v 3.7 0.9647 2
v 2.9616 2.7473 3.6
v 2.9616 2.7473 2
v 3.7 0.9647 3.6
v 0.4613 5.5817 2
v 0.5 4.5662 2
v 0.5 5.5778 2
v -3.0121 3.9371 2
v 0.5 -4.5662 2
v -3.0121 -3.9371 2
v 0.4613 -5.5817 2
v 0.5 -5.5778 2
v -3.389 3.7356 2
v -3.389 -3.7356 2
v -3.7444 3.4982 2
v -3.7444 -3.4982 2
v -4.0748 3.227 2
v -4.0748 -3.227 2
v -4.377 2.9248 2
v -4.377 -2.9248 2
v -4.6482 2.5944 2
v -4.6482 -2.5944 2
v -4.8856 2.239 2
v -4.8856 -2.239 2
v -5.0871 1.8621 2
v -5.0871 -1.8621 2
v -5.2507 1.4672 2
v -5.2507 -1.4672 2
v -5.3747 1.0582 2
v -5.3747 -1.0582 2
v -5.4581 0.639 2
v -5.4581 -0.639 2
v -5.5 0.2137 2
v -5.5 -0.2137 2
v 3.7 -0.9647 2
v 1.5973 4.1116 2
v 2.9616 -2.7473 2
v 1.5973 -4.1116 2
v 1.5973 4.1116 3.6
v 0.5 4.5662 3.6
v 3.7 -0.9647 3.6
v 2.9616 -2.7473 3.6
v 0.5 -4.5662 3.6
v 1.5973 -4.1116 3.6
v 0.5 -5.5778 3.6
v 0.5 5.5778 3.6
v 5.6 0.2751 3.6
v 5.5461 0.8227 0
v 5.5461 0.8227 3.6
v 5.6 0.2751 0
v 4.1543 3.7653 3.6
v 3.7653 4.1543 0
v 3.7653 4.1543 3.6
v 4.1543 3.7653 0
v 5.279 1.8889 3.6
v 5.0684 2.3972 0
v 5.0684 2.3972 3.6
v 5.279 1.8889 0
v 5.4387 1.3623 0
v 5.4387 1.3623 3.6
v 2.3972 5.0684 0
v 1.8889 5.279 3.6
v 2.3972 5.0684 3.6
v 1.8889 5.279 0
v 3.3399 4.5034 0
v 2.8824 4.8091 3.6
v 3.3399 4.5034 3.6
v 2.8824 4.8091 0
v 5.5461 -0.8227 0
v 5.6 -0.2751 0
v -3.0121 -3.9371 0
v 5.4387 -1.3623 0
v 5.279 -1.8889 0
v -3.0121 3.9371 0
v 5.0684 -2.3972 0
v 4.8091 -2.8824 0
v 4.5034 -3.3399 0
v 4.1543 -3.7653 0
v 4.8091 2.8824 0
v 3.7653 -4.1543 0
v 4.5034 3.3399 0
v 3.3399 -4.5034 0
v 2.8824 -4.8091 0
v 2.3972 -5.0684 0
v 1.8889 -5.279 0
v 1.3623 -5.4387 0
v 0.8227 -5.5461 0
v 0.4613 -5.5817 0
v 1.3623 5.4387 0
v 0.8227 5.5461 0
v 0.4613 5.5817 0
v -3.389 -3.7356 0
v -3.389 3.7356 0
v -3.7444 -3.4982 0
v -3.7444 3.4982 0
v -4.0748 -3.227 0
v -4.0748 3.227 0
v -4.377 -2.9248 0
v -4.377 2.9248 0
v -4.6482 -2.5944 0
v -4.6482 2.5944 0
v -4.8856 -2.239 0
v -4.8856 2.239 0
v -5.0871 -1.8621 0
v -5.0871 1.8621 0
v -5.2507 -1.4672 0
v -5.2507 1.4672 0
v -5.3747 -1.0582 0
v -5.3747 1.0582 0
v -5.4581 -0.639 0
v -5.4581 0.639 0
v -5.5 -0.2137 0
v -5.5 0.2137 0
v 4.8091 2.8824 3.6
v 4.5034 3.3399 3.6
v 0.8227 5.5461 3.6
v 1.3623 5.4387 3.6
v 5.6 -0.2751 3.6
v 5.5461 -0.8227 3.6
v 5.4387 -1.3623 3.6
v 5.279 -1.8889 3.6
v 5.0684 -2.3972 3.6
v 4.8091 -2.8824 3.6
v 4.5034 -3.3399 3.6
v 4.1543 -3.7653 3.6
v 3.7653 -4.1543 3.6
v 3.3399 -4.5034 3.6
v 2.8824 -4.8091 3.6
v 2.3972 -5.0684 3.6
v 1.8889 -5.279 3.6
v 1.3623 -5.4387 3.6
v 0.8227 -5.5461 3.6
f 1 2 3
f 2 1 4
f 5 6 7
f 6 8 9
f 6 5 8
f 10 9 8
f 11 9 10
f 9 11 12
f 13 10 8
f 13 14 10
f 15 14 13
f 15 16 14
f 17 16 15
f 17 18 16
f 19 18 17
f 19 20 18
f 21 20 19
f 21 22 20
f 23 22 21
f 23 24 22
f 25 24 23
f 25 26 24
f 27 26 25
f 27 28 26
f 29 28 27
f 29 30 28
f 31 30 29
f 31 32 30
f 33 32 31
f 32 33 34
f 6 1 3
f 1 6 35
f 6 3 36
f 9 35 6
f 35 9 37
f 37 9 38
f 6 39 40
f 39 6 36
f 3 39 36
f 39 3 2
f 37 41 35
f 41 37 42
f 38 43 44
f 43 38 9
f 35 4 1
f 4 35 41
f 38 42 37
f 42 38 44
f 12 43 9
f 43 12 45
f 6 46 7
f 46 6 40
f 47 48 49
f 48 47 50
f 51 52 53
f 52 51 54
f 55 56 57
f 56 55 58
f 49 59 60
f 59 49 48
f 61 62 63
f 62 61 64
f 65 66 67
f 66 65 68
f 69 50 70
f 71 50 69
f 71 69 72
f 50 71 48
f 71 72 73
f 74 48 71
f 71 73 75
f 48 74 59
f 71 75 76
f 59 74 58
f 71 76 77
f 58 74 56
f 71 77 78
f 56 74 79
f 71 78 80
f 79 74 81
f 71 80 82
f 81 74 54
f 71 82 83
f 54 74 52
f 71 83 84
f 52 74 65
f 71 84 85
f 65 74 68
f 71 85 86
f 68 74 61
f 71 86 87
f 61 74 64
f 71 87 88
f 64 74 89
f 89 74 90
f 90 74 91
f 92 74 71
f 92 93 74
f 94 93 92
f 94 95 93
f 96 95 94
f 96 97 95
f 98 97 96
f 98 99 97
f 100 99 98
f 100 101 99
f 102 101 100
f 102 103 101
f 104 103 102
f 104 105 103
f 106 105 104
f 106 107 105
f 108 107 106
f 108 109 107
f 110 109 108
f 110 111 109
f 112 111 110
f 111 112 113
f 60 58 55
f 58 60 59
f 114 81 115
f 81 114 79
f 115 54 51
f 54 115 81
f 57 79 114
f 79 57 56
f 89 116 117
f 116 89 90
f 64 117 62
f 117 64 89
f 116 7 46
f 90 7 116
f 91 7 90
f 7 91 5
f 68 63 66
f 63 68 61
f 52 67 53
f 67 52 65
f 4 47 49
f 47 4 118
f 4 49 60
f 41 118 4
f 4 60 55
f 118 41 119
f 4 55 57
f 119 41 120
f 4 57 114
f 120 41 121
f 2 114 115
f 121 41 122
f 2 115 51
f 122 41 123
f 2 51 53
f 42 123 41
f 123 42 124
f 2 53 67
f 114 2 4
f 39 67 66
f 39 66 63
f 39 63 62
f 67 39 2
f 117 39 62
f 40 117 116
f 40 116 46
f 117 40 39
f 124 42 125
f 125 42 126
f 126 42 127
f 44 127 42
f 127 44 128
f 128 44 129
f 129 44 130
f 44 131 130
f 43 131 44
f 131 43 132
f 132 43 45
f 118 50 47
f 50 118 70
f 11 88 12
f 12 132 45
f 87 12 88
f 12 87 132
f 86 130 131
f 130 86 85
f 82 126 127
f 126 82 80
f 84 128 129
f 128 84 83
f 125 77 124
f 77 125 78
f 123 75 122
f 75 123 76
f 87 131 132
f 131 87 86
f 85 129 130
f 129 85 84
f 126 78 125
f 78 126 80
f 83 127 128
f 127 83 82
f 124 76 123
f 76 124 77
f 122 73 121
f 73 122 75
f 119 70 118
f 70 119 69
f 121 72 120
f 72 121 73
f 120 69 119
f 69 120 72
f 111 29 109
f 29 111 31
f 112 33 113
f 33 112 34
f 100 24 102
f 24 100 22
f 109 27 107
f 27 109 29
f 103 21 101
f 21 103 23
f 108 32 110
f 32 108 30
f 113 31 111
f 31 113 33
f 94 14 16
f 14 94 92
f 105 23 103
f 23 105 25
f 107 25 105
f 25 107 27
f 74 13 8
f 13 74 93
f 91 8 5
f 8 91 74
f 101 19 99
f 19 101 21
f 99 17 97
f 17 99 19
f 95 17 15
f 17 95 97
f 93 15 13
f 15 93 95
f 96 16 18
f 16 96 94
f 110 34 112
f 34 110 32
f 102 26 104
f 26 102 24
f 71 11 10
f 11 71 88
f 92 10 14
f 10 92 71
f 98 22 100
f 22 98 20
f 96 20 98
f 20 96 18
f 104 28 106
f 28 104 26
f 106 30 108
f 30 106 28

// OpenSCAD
// file: ../../lib/util.scad
left   = -1;
right  = 1;
front  = -1;
rear   = 1;
top    = 1;
bottom = -1;

x = 0;
y = 1;
z = 2;

width  = x;
depth  = y;
height = z;

inch = 25.4;

function accurate_diam(diam,sides) = 1 / cos(180/sides) / 2 * diam;

module hole(diam,len,sides=8) {
  rotate([0,0,180/sides]) {
    cylinder(r=accurate_diam(diam,sides),h=len,center=true,$fn=sides);
  }
}

module accurate_circle(diam,sides=8) {
  rotate([0,0,180/sides]) {
    circle(r=accurate_diam(diam,sides),$fn=sides);
  }
}

module debug_axes() {
  color("red") {
    translate([50,0,0]) cube([100,.2,.2],center=true);
    translate([0,50,0]) cube([.2,100,.2],center=true);
    translate([0,0,50]) cube([.2,.2,100],center=true);
  }
}

module rounded_square(width,height,diam,resolution=16) {
  hull() {
    for(x=[left,right]) {
      for(y=[front,rear]) {
        translate([x*(width/2-diam/2),y*(height/2-diam/2),0]) {
          accurate_circle(diam,resolution);
        }
      }
    }
  }
}
// main file
include <../../lib/util.scad>;

LR44_diam   = 11.6;
LR44_height = 5.4;
LR932_diam   = 9.3;
LR932_height = 3.2;

z_margin  = 0.2;
xy_margin = 0.4;

rim_height = LR44_height - LR932_height - z_margin;

body_diam   = LR44_diam    - xy_margin;
body_height = rim_height   + LR932_height/2;
void_diam   = LR932_diam   + xy_margin;
void_height = LR932_height + z_margin;

offset_x = (LR932_diam - LR44_diam)/2;

resolution = 64;

module battery_adapter() {
  difference() {
    intersection() {
      translate([0,0,body_height/2]) {
        hole(body_diam,body_height,resolution);
      }

      hull() {
        translate([offset_x,0,body_height/2]) {
          hole(void_diam-1,body_height*2,resolution);
        }
        translate([body_diam/2,0,body_height]) {
          cube([body_diam-1,body_diam,body_height*2],center=true);
        }
      }
    }
    translate([0,0,rim_height+void_height/2]) {
      translate([offset_x,0,0]) {
        hole(void_diam,void_height,resolution/4);
      }
      translate([-body_diam/2,0,0]) {
        cube([body_diam+1,body_diam*2,void_height],center=true);
      }
    }
  }

  if (1) {
    translate([0,0,LR44_height/2]) {
      % difference() {
        hole(LR44_diam,LR44_height,resolution);
        hole(LR44_diam-0.1,LR44_height*2,resolution);
      }
    }
  }

  if (1) {
    translate([offset_x,0,LR44_height-LR932_height/2+0.01]) {
      % color("red", 0.2) hole(LR932_diam,LR932_height,resolution);
    }
  }
}

battery_adapter();
